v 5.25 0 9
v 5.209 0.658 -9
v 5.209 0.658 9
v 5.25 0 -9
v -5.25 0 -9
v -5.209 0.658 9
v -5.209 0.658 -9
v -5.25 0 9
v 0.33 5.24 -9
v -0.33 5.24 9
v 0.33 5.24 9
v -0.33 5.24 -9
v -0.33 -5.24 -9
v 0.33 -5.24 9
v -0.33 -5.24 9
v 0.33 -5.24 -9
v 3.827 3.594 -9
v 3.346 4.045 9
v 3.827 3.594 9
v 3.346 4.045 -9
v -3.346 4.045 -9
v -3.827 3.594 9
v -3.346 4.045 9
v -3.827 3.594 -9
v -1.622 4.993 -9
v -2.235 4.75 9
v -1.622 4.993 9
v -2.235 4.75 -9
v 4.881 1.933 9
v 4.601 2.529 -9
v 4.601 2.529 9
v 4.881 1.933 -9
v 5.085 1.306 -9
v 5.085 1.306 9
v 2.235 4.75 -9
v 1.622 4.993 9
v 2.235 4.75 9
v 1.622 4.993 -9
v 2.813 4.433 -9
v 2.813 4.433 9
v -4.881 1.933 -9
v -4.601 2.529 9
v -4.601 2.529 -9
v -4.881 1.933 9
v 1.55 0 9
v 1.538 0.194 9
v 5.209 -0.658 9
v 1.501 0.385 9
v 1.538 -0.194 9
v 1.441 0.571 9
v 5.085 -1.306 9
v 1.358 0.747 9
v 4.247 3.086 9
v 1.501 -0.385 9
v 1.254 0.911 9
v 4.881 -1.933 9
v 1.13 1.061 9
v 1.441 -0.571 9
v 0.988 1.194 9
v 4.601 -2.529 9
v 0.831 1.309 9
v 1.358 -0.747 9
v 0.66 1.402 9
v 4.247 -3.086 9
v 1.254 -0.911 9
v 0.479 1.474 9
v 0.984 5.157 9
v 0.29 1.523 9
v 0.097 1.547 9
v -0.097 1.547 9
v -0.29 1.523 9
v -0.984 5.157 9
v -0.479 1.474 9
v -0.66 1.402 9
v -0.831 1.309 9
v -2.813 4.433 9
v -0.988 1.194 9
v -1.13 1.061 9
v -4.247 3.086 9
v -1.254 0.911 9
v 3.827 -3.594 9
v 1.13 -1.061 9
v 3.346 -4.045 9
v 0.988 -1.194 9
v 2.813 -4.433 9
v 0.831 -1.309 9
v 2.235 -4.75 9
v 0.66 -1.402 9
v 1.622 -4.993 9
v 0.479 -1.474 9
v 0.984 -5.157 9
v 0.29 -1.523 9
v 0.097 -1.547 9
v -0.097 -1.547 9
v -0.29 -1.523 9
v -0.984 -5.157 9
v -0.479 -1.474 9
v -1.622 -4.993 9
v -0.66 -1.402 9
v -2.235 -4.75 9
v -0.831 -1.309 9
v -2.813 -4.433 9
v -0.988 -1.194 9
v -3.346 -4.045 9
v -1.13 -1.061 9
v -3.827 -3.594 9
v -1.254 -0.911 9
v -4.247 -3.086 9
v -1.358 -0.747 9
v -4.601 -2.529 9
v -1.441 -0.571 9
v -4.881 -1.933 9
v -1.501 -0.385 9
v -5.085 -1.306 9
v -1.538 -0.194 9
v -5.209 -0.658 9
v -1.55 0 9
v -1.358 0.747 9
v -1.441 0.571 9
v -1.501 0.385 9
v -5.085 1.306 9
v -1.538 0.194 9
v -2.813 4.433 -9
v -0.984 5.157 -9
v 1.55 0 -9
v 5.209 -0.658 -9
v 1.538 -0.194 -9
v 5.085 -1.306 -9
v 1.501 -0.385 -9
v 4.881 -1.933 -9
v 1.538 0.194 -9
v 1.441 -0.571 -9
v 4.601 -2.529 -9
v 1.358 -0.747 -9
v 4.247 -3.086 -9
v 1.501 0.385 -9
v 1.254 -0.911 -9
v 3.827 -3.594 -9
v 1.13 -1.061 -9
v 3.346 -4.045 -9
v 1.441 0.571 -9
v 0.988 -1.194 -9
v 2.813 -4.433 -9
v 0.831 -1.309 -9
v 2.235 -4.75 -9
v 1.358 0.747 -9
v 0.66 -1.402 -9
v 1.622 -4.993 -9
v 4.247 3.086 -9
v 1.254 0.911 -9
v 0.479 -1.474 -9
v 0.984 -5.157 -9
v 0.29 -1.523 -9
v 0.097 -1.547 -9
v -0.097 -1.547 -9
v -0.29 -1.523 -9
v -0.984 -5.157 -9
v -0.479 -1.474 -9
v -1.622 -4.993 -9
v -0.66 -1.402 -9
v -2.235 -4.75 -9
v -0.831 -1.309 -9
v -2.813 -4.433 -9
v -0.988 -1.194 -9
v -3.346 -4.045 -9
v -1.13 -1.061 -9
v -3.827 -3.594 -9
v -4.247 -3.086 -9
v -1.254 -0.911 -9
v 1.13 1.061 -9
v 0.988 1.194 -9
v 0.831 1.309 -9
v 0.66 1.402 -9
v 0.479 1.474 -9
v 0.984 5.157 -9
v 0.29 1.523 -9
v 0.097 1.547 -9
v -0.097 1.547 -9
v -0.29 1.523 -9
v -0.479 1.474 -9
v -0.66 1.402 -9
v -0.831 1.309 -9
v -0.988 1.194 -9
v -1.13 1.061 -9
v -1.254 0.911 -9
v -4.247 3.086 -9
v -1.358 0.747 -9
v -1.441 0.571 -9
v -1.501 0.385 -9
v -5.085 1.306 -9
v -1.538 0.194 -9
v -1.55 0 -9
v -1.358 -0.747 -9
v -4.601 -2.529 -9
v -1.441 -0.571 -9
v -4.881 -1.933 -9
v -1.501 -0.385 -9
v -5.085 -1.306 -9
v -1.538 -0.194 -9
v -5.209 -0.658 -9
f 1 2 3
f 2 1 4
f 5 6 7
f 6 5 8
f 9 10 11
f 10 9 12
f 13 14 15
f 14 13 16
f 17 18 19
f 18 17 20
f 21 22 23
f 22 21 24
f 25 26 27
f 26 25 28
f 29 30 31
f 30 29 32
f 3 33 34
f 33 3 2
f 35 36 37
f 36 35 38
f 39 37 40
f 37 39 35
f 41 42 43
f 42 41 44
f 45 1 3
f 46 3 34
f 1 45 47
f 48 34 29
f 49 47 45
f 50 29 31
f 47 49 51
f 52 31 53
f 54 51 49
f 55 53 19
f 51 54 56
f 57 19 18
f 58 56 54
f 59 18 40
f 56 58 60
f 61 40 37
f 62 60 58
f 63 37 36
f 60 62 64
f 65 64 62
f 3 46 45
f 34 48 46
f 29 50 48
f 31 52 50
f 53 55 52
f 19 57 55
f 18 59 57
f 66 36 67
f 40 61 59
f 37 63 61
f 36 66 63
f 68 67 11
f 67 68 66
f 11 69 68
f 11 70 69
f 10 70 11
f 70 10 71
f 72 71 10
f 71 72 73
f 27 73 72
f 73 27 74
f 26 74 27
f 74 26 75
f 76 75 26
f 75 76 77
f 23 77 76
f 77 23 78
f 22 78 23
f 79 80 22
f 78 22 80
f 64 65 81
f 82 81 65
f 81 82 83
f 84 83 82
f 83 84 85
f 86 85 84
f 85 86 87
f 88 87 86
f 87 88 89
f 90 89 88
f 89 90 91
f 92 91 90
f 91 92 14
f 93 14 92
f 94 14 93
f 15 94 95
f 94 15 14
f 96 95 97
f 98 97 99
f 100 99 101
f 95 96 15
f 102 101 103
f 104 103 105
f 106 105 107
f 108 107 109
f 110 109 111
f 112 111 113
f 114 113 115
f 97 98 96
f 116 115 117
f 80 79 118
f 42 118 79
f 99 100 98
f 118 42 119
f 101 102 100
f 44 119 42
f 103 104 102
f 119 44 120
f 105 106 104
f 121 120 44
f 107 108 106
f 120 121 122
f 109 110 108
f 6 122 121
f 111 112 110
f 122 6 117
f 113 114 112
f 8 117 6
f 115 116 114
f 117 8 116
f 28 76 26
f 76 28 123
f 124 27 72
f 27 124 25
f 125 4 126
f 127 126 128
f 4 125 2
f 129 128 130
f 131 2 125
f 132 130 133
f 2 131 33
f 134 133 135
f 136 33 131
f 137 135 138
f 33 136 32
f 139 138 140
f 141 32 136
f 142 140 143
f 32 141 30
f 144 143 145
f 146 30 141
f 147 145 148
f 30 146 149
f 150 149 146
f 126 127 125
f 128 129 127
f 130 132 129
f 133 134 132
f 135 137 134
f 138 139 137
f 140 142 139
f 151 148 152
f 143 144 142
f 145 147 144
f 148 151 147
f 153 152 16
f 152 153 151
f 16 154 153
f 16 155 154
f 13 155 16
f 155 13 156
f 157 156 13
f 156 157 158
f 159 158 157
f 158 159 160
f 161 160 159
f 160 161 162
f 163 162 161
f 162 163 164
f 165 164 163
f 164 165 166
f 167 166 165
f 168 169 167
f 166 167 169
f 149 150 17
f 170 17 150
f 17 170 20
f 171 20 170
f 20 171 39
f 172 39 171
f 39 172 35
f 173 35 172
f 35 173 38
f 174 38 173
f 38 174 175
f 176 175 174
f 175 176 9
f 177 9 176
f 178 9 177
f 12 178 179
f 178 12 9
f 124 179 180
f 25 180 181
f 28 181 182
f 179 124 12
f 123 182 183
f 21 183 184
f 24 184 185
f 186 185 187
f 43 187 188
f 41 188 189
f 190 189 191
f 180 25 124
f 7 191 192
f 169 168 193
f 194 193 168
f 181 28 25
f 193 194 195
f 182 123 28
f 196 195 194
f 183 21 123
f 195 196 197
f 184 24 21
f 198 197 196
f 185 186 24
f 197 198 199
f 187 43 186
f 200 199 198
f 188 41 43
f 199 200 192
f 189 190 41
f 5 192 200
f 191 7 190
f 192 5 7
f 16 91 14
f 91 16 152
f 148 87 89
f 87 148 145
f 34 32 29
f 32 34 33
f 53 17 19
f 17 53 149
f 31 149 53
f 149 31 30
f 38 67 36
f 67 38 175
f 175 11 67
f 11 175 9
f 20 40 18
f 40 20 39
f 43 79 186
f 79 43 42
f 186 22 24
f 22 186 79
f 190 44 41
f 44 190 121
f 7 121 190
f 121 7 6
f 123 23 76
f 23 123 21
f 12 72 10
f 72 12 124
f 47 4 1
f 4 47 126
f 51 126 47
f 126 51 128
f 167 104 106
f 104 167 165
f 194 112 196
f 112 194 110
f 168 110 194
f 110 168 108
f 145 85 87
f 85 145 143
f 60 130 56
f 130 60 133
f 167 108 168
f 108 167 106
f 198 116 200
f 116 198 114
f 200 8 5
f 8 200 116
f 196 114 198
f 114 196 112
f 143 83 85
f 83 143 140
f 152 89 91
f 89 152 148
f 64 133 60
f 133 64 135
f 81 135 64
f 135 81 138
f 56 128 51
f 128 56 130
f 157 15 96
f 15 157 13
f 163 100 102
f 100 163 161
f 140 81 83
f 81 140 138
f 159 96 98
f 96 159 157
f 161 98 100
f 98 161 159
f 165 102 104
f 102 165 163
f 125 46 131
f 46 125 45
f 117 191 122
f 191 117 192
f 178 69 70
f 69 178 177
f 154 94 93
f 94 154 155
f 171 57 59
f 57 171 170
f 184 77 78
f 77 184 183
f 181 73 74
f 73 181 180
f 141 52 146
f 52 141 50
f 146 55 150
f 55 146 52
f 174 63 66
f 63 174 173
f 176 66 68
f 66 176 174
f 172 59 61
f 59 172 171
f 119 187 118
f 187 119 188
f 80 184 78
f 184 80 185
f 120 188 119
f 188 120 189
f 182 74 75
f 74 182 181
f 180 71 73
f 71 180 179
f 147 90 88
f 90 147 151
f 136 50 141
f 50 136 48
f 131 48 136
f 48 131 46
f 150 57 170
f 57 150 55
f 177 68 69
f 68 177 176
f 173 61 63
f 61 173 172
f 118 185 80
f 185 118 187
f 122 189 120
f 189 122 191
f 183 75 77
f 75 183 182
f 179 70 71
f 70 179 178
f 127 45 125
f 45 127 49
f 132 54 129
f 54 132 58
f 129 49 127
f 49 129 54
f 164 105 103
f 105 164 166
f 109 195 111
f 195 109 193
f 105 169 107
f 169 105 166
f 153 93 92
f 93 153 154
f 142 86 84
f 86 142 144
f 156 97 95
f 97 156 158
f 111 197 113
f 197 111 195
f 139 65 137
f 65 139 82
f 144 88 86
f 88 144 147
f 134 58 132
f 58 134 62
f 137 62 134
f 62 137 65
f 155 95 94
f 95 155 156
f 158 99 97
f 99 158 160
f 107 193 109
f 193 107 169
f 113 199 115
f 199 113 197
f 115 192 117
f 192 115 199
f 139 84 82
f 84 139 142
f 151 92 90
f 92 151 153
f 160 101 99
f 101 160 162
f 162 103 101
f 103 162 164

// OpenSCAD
$fn = 50;


difference() {
	union() {
		translate(v = [0, 0, -9.0000000000]) {
			cylinder(h = 18, r = 5.2500000000);
		}
	}
	union() {
		translate(v = [0, 0, -100.0000000000]) {
			cylinder(h = 200, r = 1.5500000000);
		}
	}
}
